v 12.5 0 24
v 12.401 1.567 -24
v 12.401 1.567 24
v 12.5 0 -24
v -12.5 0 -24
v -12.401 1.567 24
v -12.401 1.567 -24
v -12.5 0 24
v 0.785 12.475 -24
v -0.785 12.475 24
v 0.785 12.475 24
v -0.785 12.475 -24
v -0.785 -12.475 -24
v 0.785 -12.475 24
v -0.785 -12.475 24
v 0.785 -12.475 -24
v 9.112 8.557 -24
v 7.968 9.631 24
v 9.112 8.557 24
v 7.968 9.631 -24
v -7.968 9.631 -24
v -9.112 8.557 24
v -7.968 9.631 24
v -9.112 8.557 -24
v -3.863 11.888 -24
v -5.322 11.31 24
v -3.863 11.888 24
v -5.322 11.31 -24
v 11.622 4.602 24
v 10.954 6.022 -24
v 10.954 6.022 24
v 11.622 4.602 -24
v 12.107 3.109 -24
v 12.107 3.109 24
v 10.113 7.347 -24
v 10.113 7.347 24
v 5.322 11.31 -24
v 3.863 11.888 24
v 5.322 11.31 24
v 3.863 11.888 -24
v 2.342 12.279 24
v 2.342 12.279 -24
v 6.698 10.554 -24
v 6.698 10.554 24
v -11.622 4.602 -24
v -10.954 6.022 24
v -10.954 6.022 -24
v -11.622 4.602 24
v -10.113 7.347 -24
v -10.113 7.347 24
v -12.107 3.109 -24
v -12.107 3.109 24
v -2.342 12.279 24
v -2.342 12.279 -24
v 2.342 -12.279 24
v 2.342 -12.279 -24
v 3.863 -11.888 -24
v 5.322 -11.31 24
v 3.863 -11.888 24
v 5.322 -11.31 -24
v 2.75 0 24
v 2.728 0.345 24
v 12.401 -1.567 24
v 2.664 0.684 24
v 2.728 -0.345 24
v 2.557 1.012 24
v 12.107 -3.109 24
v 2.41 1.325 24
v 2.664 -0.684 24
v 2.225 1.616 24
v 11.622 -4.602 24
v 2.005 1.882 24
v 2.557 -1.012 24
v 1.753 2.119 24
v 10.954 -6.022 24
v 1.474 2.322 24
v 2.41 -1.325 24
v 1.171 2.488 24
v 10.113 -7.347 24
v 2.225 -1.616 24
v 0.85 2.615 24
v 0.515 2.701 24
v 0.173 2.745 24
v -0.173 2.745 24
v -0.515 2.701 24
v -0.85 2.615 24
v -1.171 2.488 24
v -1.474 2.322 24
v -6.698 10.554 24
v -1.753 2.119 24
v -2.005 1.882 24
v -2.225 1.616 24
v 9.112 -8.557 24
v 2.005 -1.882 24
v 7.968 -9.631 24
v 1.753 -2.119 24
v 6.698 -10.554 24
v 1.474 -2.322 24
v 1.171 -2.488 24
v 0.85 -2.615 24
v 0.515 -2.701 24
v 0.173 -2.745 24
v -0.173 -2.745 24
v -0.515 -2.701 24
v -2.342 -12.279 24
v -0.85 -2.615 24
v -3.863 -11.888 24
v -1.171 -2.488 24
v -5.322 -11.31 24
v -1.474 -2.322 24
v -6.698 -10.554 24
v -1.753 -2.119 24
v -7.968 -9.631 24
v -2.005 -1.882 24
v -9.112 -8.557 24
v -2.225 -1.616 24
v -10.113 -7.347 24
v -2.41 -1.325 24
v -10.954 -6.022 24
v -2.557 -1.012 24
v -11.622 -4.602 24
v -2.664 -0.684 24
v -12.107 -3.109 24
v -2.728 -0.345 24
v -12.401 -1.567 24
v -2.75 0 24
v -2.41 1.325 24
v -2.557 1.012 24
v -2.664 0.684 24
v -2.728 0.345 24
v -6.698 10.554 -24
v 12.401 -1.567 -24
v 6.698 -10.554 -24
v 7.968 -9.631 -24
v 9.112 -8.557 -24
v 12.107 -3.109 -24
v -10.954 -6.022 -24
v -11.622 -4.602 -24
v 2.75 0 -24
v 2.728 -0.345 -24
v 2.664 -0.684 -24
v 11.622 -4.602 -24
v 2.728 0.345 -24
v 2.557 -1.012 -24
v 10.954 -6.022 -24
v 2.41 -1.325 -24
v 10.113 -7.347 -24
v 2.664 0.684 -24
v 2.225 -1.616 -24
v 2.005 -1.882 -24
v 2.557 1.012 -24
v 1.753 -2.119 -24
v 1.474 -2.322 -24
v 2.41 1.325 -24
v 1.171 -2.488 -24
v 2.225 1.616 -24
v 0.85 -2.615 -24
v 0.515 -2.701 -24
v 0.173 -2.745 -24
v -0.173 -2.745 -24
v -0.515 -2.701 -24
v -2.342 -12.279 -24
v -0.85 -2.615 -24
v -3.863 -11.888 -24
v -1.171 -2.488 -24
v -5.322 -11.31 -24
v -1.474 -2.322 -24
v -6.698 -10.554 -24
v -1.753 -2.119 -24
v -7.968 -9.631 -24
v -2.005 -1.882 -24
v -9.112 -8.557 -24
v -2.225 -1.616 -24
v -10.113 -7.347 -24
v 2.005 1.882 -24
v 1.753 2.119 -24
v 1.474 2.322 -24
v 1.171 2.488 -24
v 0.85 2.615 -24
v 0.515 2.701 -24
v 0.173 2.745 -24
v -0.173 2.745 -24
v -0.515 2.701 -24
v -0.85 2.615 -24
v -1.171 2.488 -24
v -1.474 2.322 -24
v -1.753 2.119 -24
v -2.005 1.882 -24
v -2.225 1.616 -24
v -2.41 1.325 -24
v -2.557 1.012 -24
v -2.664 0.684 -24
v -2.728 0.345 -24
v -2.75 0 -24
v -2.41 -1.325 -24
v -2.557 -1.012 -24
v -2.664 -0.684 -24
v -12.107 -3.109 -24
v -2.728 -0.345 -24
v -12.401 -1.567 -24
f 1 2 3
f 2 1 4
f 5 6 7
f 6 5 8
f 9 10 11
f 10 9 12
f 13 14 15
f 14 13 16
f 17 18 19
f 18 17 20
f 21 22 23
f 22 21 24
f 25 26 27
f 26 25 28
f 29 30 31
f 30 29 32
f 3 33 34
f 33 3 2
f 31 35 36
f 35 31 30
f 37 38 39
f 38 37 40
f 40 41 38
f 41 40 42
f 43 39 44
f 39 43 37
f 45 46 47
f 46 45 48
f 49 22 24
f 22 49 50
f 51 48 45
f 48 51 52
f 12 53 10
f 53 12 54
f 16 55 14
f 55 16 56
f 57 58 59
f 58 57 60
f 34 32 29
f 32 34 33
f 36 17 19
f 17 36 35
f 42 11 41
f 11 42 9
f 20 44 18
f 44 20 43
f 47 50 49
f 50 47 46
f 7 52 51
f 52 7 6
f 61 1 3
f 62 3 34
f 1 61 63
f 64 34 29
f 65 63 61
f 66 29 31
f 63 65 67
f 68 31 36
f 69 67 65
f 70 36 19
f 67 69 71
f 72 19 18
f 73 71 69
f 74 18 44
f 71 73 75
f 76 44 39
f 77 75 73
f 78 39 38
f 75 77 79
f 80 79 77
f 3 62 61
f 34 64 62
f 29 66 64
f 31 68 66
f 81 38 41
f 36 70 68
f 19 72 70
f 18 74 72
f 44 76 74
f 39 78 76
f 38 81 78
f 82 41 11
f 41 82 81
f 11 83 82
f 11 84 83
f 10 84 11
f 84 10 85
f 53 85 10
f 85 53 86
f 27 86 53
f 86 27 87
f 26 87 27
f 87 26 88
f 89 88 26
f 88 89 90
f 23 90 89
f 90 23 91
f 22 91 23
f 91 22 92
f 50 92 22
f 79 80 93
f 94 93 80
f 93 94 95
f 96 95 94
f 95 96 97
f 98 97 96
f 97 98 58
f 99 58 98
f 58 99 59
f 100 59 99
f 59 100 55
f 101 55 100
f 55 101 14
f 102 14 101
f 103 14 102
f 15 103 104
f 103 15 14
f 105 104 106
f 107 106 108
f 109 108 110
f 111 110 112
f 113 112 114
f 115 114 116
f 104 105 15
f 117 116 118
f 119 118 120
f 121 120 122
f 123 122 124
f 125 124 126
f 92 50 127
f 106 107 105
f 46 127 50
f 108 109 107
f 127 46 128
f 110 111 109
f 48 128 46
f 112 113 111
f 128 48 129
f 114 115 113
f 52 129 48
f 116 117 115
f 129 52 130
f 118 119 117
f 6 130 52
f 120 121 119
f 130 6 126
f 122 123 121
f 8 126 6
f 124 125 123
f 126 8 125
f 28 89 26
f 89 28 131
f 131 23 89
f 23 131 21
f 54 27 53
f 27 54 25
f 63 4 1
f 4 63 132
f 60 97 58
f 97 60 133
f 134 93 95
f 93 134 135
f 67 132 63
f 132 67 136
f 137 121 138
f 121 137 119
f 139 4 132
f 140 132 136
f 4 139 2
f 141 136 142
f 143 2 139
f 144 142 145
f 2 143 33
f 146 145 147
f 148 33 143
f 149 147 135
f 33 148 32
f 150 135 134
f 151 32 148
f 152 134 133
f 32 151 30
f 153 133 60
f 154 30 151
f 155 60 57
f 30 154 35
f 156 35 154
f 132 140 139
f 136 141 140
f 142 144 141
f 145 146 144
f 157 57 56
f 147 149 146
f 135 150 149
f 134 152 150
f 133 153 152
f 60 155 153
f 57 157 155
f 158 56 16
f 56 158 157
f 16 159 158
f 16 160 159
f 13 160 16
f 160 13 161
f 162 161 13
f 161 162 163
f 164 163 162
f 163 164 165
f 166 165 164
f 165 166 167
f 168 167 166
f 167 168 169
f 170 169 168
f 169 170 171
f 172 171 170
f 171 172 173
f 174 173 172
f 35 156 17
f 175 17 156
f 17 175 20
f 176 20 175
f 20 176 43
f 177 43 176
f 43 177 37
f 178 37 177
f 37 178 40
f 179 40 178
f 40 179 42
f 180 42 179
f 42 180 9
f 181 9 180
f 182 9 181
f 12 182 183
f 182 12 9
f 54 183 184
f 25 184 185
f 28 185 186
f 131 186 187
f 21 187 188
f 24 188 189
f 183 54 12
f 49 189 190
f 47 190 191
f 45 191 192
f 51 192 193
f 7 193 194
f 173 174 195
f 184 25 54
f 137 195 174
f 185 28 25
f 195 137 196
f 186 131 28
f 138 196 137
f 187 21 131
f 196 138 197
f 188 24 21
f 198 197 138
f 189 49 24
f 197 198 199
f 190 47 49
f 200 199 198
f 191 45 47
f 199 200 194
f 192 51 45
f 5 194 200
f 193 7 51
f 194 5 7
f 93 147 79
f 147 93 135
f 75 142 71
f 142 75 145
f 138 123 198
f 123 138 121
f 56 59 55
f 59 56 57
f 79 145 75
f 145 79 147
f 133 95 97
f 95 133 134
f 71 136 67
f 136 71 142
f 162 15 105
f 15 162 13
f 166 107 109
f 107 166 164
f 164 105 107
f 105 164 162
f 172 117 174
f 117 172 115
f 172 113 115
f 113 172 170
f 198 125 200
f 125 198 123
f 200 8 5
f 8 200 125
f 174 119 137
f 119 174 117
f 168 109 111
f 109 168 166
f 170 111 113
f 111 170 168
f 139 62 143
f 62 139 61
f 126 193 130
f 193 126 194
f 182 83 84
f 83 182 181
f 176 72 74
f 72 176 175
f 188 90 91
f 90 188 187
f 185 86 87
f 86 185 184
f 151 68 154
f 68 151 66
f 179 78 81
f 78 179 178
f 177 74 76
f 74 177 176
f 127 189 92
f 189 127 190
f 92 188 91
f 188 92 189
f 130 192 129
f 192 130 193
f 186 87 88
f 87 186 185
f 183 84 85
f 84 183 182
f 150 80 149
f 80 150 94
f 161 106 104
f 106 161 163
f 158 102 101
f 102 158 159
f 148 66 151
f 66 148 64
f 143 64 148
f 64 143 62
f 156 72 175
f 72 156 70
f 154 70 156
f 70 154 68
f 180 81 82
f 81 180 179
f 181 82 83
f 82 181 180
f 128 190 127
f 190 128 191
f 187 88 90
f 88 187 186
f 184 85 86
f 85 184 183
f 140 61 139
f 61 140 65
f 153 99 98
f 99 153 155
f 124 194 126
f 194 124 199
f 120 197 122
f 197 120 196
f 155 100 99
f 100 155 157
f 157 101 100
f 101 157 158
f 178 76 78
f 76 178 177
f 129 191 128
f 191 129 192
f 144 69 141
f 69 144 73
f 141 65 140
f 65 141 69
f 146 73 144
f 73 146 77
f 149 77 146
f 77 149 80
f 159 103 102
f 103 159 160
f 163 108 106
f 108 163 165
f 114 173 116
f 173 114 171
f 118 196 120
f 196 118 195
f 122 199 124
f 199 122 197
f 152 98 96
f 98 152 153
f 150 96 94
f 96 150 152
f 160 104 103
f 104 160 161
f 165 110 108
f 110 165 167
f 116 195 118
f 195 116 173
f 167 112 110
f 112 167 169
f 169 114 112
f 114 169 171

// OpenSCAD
$fn = 50;


difference() {
	union() {
		translate(v = [0, 0, -24.0000000000]) {
			cylinder(h = 48, r = 12.5000000000);
		}
	}
	union() {
		translate(v = [0, 0, -100.0000000000]) {
			cylinder(h = 200, r = 2.7500000000);
		}
	}
}
